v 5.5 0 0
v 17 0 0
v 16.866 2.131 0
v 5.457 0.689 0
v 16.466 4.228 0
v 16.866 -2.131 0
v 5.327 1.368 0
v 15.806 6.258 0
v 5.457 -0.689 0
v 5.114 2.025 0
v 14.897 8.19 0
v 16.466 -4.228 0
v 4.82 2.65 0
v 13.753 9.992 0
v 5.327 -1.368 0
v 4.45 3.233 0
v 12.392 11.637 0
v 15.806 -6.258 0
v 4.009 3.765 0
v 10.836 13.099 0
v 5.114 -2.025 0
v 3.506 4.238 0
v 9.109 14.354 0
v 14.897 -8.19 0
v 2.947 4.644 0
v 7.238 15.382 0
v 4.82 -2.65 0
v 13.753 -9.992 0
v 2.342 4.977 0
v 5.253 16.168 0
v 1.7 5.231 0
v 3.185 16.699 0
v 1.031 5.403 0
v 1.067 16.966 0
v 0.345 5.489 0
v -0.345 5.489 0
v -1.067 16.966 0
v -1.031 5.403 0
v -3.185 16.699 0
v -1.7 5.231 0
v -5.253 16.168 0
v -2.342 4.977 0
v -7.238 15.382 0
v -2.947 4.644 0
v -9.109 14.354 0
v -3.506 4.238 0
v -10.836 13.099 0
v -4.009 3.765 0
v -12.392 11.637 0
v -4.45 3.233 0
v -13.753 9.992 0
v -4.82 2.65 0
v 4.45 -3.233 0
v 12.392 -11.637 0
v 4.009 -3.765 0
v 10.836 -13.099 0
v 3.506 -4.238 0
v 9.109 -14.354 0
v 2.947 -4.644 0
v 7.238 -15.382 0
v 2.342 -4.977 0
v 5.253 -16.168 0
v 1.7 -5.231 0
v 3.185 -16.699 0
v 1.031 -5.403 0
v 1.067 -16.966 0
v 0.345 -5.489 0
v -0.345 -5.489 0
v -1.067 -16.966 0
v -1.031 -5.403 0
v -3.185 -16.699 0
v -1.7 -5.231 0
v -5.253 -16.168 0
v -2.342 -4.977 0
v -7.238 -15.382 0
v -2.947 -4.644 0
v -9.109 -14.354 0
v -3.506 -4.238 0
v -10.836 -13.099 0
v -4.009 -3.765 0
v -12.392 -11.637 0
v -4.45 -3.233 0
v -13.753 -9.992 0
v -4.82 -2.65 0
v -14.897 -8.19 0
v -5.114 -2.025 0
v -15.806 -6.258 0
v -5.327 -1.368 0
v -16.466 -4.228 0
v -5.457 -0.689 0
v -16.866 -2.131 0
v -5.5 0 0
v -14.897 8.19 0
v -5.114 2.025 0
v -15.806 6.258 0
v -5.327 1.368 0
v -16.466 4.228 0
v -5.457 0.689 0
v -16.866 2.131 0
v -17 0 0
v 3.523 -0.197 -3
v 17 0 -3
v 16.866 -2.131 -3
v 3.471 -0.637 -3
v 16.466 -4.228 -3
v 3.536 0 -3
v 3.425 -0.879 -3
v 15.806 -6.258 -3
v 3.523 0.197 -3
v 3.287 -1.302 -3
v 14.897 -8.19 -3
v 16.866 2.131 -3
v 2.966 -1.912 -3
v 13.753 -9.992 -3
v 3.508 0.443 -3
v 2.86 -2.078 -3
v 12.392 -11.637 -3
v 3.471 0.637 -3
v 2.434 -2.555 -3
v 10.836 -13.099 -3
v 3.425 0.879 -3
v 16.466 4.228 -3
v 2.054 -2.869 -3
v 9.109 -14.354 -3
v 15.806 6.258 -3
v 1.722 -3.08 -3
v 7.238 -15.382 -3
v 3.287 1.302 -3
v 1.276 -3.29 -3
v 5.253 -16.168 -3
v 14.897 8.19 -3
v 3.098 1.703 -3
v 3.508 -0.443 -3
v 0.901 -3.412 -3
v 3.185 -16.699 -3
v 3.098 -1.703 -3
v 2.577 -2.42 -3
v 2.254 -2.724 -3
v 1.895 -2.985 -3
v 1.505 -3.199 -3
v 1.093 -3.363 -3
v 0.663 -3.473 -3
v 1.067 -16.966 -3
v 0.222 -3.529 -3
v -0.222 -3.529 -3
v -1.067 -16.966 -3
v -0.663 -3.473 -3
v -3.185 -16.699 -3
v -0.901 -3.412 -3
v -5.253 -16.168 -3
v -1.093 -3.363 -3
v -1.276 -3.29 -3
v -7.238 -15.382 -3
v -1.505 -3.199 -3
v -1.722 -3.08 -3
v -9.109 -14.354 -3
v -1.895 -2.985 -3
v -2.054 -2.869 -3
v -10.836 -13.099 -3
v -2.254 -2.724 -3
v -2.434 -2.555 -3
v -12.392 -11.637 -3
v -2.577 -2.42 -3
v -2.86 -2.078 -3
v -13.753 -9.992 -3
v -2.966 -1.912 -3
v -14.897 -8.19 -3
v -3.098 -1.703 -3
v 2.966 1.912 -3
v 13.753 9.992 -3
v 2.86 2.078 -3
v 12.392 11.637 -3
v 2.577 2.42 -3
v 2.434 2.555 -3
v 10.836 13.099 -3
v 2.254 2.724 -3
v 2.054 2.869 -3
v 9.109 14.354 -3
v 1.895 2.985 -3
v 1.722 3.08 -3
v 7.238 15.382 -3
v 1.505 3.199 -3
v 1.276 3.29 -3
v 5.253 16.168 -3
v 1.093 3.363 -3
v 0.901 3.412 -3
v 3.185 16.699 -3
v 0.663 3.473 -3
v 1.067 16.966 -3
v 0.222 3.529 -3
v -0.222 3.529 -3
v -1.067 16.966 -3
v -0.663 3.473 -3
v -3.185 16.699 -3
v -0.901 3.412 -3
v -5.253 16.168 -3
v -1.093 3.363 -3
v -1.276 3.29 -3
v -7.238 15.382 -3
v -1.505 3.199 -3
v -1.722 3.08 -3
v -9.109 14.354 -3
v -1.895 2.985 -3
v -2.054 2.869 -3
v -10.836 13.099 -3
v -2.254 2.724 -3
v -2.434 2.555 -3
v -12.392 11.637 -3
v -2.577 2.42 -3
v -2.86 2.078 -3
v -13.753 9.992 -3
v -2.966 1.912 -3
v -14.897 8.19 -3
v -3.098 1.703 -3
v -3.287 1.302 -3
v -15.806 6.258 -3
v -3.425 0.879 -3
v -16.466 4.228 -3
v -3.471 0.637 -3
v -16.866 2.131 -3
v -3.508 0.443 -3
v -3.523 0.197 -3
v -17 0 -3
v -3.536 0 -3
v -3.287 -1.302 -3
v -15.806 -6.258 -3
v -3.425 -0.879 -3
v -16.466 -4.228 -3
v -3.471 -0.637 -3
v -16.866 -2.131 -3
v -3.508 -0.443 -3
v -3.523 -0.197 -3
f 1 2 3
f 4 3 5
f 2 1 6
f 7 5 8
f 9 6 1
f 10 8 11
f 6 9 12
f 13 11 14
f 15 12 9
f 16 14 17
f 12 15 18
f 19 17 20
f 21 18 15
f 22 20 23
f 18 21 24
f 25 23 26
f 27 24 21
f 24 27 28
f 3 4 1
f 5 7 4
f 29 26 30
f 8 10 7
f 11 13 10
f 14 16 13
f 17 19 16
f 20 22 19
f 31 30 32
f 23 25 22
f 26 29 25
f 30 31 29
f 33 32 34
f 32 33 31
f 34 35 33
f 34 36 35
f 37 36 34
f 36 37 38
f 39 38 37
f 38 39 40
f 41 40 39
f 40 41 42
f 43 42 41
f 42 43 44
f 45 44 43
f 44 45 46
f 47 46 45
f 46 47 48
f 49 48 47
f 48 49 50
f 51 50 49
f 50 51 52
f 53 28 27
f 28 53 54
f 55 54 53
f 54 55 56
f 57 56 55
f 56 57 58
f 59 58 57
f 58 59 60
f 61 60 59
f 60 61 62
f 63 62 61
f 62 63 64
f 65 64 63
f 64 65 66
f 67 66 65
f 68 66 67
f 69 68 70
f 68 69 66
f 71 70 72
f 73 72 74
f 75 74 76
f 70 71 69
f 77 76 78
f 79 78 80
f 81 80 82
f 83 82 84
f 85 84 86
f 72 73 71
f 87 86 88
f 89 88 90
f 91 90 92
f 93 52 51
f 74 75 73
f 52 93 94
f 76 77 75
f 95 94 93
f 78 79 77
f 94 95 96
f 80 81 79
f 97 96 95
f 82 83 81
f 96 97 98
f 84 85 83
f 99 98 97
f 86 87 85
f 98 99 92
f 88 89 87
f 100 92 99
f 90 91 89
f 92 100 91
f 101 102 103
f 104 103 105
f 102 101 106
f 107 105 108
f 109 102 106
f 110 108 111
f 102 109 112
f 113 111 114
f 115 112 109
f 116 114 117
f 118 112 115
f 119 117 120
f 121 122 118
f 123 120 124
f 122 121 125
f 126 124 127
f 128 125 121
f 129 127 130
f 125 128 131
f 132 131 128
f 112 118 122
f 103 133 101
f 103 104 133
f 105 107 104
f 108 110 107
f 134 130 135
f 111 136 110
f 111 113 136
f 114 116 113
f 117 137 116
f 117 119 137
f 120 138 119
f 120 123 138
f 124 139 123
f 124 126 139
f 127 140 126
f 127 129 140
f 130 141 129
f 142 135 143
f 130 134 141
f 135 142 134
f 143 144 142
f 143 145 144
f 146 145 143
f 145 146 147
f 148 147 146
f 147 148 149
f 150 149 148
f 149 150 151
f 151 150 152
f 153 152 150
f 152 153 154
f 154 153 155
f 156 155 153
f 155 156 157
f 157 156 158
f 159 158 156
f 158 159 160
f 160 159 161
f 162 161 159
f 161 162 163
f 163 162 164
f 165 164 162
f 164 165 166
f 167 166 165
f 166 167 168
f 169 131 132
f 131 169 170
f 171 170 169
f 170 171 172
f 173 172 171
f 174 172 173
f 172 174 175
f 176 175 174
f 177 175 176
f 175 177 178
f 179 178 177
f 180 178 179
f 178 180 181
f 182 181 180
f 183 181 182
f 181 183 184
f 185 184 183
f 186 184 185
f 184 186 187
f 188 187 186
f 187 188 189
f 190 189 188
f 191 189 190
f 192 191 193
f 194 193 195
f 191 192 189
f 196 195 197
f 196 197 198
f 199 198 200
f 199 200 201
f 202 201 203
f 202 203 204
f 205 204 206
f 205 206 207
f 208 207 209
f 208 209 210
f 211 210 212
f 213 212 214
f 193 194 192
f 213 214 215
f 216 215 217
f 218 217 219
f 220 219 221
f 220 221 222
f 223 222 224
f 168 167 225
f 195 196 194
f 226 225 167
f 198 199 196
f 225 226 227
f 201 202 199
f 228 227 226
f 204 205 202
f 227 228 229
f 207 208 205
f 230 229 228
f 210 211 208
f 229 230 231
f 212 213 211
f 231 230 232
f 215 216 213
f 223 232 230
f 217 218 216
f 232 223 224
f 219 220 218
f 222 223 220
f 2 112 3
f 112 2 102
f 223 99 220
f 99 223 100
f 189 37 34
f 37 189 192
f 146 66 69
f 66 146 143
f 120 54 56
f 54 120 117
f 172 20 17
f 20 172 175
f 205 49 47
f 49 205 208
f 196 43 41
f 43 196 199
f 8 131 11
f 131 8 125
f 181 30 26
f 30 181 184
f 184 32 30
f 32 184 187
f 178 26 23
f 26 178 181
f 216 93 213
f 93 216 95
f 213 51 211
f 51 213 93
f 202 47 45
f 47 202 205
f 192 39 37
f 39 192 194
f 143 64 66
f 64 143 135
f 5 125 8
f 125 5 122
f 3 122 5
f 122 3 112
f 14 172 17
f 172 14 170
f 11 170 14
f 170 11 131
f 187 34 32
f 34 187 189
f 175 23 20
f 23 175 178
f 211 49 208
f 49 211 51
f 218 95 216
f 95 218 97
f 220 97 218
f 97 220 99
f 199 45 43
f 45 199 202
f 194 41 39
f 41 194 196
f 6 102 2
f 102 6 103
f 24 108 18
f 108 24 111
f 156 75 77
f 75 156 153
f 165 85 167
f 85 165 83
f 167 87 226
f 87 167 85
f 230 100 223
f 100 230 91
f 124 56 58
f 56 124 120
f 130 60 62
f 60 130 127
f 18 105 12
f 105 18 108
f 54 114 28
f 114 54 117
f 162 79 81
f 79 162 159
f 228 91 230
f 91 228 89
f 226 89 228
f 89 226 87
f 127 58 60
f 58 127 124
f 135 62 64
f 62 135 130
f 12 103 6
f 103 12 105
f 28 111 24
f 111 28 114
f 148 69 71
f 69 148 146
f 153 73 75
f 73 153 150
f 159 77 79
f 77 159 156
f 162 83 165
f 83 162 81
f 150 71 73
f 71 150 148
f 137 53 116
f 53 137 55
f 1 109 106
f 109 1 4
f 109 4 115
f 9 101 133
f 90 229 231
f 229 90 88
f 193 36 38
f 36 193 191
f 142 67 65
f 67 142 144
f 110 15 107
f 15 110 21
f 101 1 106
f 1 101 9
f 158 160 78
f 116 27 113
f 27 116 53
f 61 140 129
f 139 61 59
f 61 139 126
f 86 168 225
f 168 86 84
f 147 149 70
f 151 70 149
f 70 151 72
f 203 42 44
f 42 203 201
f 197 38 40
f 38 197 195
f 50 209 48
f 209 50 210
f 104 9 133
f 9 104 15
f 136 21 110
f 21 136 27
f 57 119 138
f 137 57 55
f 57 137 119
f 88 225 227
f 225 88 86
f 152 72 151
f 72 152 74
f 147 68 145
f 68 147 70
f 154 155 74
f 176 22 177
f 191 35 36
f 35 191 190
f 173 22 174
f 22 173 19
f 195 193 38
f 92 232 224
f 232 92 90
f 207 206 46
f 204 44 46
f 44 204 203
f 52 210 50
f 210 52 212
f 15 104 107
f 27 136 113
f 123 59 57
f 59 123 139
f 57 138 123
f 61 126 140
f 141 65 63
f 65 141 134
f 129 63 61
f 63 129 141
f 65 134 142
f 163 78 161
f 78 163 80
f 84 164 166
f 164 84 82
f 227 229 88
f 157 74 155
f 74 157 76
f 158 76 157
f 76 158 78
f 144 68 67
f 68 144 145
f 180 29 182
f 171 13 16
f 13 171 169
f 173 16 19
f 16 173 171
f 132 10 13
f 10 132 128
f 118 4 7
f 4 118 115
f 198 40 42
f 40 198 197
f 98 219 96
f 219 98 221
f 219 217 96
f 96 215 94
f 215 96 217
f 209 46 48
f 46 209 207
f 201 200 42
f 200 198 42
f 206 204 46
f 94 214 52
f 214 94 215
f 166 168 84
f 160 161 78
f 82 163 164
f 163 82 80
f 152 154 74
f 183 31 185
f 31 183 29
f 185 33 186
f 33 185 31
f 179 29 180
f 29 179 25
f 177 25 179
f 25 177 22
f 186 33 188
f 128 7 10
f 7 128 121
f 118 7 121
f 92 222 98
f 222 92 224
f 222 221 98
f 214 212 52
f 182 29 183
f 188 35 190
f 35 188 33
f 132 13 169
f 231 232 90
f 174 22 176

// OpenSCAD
$fn = 50;


difference() {
	union() {
		translate(v = [0, 0, -3.0000000000]) {
			cylinder(h = 3, r = 7.0000000000);
		}
		translate(v = [0, 0, -3.0000000000]) {
			cylinder(h = 3, r = 17.0000000000);
		}
	}
	union() {
		translate(v = [0, 0, 0]) {
			rotate(a = [0, 0, 0]) {
				difference() {
					union() {
						#translate(v = [0, 0, -3.0000000000]) {
							cylinder(h = 3, r = 2.2500000000);
						}
						#translate(v = [0, 0, -4.2000000000]) {
							cylinder(h = 4.2000000000, r1 = 2.7500000000, r2 = 5.5000000000);
						}
						#translate(v = [0, 0, -3.0000000000]) {
							cylinder(h = 3, r = 2.7500000000);
						}
						#translate(v = [0, 0, -3.0000000000]) {
							cylinder(h = 3, r = 2.2500000000);
						}
					}
					union();
				}
			}
		}
	}
}
